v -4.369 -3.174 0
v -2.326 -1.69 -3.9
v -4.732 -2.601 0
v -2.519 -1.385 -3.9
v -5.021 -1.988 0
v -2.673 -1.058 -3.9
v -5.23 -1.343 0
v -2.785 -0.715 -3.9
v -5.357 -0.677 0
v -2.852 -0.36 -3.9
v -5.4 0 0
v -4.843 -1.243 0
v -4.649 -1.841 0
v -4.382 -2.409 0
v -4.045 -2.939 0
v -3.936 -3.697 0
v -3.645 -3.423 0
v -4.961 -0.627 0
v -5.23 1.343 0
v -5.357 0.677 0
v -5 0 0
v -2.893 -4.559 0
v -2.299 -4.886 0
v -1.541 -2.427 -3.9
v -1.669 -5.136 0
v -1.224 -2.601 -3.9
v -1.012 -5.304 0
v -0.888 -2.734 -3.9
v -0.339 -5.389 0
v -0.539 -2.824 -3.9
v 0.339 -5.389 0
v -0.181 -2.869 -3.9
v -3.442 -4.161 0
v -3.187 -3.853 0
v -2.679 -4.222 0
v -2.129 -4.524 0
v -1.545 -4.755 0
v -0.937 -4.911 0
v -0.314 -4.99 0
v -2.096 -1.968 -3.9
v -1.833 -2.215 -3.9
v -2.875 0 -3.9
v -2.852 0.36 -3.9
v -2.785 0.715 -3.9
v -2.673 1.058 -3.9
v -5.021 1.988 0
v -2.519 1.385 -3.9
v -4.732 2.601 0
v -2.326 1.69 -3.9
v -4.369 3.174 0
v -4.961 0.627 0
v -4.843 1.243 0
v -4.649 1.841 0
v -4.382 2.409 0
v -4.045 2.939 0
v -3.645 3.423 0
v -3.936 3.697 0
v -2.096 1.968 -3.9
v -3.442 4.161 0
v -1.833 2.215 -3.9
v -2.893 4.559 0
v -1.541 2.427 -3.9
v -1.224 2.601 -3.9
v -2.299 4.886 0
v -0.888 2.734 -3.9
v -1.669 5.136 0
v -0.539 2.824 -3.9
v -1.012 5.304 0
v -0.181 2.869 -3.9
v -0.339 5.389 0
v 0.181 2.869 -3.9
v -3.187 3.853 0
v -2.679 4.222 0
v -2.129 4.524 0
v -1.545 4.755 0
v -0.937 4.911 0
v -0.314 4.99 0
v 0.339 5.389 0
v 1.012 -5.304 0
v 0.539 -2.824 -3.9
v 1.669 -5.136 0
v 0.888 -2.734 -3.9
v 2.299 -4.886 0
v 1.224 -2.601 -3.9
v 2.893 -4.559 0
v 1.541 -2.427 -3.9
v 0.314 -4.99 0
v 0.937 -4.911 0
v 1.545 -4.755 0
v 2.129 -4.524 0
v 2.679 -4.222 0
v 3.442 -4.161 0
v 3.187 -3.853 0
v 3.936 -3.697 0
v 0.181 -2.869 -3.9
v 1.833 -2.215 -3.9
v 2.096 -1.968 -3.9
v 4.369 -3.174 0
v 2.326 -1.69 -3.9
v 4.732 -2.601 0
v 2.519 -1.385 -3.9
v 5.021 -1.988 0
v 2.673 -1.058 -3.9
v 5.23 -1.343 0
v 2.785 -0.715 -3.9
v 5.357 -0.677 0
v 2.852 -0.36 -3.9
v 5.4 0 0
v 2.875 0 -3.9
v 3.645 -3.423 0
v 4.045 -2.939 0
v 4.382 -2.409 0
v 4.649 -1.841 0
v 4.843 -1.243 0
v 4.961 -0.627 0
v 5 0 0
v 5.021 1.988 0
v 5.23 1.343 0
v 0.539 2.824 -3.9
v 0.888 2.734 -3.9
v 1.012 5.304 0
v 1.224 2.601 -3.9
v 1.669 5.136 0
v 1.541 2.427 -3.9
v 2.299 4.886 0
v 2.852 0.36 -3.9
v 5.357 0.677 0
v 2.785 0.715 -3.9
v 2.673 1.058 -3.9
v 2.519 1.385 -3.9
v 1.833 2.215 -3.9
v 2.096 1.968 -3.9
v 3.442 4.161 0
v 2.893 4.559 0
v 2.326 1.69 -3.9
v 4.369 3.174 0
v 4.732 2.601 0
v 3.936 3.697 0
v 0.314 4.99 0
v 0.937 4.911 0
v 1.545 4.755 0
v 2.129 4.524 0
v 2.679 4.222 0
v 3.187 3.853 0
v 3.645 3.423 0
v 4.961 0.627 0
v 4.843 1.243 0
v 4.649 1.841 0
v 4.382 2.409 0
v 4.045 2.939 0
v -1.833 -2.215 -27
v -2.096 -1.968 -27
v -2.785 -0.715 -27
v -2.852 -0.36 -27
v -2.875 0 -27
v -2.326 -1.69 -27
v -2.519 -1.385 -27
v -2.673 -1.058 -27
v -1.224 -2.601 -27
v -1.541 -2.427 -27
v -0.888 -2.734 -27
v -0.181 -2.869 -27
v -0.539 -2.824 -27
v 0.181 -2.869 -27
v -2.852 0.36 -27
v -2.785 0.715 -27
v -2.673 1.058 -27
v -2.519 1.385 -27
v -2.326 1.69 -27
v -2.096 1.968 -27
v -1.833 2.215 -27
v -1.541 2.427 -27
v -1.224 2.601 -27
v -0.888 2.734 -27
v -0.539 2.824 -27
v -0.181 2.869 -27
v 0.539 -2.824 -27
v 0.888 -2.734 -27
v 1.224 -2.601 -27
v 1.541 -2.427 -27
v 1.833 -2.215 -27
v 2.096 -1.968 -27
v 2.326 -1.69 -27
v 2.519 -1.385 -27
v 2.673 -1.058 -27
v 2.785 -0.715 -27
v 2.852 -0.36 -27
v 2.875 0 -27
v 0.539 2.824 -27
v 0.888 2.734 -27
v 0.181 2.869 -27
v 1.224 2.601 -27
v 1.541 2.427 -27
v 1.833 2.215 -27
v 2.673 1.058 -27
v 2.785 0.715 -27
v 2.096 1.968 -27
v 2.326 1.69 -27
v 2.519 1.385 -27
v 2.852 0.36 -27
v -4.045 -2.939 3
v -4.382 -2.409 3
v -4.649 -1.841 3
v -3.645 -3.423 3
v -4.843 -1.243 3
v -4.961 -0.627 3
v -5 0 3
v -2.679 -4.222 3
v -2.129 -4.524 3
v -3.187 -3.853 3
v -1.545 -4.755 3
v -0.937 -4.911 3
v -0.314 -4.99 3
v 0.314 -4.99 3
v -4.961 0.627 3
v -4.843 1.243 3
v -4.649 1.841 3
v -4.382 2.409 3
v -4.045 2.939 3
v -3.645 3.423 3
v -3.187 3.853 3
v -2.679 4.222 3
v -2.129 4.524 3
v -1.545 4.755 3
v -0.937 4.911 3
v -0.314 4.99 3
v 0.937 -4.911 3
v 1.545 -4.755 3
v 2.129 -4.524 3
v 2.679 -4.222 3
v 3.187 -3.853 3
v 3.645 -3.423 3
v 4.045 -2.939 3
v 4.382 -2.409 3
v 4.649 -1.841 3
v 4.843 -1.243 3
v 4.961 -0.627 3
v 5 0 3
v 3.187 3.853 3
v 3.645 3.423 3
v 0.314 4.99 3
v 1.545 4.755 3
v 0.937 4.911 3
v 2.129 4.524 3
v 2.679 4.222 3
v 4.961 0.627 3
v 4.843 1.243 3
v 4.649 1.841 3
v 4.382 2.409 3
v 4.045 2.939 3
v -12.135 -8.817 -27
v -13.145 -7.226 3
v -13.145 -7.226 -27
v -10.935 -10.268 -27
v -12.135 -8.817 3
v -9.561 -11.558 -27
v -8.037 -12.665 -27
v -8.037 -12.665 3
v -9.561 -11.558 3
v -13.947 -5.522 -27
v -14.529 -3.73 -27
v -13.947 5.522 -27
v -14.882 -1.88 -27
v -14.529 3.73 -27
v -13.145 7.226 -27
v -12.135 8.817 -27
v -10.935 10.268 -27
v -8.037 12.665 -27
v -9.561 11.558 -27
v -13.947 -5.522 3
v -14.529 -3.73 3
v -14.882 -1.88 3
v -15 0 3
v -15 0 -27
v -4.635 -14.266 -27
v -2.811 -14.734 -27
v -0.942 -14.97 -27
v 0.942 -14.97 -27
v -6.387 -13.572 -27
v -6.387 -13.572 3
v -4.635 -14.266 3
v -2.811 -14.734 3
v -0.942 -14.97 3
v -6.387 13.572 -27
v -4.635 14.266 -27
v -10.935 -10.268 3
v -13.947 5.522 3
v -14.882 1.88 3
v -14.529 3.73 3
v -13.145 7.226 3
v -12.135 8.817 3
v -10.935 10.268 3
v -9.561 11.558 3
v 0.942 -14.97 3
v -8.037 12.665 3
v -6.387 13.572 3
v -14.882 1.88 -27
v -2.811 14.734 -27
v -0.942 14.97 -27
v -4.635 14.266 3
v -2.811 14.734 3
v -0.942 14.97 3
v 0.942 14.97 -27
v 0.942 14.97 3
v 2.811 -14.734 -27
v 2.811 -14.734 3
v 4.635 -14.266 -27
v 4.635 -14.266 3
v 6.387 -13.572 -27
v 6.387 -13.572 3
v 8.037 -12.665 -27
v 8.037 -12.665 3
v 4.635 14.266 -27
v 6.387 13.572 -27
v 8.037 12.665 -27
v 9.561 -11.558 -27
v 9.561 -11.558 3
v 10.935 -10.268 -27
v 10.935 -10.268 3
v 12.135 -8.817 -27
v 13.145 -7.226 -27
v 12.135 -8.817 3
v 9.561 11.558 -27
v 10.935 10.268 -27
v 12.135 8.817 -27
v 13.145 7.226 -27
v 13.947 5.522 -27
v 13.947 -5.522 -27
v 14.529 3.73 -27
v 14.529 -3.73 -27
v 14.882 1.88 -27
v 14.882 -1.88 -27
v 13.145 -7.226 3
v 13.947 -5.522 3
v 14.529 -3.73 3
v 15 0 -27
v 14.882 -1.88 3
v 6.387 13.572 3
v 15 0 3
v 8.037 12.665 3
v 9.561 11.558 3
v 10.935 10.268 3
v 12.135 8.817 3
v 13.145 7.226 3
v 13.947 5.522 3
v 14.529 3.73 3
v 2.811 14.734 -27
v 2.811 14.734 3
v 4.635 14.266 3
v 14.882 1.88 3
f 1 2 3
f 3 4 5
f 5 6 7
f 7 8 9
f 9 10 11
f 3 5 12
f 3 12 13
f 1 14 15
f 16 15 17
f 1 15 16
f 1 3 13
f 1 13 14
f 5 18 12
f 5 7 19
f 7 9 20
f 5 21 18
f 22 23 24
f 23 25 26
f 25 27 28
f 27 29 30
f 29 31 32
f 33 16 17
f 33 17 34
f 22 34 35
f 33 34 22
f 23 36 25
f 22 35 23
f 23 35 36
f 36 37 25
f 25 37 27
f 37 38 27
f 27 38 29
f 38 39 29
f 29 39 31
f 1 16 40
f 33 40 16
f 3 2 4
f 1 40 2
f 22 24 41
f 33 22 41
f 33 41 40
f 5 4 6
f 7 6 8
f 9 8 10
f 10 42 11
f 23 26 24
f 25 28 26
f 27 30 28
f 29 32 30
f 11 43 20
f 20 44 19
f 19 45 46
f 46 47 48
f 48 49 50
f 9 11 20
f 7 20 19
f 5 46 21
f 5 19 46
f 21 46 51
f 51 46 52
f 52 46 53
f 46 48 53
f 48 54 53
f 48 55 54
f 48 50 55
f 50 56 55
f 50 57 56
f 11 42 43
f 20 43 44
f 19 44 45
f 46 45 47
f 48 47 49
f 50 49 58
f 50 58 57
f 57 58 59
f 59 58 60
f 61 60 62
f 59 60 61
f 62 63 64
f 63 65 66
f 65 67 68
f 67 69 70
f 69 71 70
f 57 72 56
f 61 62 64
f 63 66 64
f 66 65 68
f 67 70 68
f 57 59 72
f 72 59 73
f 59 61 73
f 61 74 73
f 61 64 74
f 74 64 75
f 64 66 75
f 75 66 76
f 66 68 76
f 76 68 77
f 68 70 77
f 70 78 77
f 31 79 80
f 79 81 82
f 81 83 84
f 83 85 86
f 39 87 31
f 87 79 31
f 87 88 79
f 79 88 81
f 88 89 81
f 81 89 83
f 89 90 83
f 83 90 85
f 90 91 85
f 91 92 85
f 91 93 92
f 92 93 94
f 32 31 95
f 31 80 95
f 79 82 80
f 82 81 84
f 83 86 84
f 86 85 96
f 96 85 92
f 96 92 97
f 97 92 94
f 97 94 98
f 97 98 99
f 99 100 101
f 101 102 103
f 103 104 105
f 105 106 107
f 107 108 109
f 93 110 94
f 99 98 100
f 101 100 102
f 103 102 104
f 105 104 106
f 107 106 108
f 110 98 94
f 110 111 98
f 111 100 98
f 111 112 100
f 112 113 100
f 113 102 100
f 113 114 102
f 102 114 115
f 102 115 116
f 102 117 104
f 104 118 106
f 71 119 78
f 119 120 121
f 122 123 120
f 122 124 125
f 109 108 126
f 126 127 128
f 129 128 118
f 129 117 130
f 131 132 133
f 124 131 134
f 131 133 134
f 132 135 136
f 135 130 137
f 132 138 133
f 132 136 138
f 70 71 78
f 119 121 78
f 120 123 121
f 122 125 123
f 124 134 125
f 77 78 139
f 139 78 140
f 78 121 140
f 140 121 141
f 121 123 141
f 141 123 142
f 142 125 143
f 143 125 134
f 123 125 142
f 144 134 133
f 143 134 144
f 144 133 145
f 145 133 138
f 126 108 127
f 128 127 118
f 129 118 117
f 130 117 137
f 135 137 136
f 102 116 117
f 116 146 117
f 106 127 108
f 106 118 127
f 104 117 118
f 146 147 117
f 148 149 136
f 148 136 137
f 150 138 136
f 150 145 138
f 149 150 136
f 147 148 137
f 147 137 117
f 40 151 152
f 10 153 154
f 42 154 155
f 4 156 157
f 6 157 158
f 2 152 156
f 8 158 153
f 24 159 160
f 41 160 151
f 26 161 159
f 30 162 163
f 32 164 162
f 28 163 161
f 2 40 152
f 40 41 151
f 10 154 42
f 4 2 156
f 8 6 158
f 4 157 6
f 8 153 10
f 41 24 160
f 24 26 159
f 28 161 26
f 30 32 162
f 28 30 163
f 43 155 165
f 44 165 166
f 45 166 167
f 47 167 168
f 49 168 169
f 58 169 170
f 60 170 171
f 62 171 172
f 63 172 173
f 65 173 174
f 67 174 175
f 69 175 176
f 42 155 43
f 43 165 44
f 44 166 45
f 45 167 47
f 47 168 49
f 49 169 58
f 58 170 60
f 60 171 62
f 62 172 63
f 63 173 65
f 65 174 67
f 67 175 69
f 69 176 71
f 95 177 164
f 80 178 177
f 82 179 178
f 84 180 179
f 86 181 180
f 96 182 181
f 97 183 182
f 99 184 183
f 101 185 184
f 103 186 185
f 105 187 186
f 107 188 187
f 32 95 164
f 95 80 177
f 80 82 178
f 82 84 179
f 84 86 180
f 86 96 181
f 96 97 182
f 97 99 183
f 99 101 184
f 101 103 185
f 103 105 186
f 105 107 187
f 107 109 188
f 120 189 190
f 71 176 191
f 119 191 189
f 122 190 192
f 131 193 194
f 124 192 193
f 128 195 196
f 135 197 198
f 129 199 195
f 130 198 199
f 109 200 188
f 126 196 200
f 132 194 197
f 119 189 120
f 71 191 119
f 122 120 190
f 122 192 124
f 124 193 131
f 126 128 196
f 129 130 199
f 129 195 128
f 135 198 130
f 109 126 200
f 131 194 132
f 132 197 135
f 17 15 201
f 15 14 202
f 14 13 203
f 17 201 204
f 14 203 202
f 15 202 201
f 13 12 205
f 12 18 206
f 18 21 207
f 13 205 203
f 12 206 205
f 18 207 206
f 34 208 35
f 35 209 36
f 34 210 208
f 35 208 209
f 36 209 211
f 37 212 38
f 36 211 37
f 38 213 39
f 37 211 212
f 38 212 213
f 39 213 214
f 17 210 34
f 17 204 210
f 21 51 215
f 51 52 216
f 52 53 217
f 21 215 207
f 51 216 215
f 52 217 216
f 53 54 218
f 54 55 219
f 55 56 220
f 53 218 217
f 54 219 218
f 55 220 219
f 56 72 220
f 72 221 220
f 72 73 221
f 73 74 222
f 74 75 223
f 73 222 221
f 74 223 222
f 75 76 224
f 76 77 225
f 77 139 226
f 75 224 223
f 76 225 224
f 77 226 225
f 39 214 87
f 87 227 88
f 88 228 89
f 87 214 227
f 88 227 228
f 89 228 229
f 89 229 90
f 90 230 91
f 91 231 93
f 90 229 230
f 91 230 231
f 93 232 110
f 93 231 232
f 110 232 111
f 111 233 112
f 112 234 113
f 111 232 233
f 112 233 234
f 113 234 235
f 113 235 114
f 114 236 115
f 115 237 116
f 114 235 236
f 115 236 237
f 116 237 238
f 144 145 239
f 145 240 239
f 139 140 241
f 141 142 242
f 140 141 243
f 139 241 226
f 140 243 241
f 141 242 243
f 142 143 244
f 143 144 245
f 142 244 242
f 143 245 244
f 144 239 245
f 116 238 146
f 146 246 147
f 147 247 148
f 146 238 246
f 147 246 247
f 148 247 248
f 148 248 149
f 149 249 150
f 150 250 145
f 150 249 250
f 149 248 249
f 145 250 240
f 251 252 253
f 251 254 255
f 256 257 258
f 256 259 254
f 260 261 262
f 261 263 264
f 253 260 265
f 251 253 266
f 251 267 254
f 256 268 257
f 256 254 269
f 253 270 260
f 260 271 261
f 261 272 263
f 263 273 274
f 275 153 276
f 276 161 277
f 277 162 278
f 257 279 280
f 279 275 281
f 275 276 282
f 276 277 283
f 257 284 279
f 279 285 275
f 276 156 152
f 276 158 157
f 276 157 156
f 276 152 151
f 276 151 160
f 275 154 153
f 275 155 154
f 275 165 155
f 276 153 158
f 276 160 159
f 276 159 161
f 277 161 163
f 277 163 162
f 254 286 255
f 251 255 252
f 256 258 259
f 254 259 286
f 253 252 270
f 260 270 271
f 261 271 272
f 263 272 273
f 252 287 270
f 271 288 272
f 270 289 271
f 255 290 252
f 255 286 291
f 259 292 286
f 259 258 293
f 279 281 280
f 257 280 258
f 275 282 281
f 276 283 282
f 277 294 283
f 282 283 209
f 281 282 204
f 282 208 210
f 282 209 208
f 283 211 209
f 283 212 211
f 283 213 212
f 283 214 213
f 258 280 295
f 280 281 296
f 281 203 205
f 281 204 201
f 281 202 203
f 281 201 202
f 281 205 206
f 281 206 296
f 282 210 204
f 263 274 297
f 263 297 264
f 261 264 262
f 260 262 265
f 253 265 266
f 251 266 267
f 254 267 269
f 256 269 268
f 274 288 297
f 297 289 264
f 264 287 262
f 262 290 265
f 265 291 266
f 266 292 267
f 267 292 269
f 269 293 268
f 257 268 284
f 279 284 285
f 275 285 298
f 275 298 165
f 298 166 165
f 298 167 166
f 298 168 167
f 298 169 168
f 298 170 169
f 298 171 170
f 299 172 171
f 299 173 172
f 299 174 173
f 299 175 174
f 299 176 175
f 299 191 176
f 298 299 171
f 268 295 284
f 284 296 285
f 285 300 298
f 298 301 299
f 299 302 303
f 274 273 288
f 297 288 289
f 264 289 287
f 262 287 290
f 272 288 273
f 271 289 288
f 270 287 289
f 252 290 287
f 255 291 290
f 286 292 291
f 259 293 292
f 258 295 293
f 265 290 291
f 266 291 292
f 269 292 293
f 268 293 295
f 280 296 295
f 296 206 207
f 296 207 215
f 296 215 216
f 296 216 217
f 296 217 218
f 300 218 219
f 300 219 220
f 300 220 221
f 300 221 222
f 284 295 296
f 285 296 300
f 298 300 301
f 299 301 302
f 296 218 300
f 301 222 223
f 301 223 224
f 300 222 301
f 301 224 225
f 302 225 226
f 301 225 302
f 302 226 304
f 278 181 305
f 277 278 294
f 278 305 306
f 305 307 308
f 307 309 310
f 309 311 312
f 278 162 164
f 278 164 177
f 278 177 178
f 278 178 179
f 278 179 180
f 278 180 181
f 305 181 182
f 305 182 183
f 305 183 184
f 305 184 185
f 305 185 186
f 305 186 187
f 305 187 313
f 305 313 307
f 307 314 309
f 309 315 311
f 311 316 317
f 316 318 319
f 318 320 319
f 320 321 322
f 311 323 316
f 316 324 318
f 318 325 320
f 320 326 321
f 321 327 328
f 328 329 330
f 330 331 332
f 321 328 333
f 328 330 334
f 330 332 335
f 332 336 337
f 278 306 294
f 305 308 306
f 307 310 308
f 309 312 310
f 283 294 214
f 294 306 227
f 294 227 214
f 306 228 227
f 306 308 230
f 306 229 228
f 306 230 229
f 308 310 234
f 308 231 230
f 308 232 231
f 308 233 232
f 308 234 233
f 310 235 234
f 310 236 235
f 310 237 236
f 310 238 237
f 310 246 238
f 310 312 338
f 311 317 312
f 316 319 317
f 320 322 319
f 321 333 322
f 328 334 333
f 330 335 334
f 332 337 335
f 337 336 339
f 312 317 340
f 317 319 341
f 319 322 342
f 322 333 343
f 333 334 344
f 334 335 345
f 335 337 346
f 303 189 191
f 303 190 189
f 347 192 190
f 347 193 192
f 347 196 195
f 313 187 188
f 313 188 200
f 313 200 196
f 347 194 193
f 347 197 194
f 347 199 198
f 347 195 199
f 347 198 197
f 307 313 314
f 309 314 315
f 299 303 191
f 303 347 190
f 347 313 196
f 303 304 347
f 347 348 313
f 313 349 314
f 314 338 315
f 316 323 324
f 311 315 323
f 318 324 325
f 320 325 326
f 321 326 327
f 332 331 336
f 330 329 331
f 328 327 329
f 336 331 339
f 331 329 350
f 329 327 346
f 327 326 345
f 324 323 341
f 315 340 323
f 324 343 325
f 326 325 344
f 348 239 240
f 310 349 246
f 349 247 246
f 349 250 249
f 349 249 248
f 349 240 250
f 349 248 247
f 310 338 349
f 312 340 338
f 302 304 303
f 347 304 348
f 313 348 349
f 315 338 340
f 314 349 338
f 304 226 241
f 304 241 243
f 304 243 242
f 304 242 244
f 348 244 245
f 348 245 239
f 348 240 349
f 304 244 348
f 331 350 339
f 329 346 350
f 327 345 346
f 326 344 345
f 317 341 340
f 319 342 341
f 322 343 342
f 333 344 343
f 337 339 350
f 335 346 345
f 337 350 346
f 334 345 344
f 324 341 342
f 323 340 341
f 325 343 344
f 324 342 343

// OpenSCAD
$fn = 50;

difference() {
	union() {
		translate(v = [0, 0, -27.0]) {
			cylinder(h = 30, r = 15.0);
		}
	}
	union() {
		translate(v = [0, 0, 0]) {
			rotate(a = [0, 0, 0]) {
				difference() {
					union() {
						translate(v = [0, 0, -30.0]) {
							cylinder(h = 30, r = 2.6);
						}
						translate(v = [0, 0, -3.9]) {
							cylinder(h = 3.9, r1 = 2.875, r2 = 5.4);
						}
						translate(v = [0, 0, -30.0]) {
							cylinder(h = 30, r = 2.875);
						}
						translate(v = [0, 0, -30.0]) {
							cylinder(h = 30, r = 2.6);
						}
					}
					union();
				}
			}
		}
		#cylinder(h = 3, r = 5.0);
	}
}
